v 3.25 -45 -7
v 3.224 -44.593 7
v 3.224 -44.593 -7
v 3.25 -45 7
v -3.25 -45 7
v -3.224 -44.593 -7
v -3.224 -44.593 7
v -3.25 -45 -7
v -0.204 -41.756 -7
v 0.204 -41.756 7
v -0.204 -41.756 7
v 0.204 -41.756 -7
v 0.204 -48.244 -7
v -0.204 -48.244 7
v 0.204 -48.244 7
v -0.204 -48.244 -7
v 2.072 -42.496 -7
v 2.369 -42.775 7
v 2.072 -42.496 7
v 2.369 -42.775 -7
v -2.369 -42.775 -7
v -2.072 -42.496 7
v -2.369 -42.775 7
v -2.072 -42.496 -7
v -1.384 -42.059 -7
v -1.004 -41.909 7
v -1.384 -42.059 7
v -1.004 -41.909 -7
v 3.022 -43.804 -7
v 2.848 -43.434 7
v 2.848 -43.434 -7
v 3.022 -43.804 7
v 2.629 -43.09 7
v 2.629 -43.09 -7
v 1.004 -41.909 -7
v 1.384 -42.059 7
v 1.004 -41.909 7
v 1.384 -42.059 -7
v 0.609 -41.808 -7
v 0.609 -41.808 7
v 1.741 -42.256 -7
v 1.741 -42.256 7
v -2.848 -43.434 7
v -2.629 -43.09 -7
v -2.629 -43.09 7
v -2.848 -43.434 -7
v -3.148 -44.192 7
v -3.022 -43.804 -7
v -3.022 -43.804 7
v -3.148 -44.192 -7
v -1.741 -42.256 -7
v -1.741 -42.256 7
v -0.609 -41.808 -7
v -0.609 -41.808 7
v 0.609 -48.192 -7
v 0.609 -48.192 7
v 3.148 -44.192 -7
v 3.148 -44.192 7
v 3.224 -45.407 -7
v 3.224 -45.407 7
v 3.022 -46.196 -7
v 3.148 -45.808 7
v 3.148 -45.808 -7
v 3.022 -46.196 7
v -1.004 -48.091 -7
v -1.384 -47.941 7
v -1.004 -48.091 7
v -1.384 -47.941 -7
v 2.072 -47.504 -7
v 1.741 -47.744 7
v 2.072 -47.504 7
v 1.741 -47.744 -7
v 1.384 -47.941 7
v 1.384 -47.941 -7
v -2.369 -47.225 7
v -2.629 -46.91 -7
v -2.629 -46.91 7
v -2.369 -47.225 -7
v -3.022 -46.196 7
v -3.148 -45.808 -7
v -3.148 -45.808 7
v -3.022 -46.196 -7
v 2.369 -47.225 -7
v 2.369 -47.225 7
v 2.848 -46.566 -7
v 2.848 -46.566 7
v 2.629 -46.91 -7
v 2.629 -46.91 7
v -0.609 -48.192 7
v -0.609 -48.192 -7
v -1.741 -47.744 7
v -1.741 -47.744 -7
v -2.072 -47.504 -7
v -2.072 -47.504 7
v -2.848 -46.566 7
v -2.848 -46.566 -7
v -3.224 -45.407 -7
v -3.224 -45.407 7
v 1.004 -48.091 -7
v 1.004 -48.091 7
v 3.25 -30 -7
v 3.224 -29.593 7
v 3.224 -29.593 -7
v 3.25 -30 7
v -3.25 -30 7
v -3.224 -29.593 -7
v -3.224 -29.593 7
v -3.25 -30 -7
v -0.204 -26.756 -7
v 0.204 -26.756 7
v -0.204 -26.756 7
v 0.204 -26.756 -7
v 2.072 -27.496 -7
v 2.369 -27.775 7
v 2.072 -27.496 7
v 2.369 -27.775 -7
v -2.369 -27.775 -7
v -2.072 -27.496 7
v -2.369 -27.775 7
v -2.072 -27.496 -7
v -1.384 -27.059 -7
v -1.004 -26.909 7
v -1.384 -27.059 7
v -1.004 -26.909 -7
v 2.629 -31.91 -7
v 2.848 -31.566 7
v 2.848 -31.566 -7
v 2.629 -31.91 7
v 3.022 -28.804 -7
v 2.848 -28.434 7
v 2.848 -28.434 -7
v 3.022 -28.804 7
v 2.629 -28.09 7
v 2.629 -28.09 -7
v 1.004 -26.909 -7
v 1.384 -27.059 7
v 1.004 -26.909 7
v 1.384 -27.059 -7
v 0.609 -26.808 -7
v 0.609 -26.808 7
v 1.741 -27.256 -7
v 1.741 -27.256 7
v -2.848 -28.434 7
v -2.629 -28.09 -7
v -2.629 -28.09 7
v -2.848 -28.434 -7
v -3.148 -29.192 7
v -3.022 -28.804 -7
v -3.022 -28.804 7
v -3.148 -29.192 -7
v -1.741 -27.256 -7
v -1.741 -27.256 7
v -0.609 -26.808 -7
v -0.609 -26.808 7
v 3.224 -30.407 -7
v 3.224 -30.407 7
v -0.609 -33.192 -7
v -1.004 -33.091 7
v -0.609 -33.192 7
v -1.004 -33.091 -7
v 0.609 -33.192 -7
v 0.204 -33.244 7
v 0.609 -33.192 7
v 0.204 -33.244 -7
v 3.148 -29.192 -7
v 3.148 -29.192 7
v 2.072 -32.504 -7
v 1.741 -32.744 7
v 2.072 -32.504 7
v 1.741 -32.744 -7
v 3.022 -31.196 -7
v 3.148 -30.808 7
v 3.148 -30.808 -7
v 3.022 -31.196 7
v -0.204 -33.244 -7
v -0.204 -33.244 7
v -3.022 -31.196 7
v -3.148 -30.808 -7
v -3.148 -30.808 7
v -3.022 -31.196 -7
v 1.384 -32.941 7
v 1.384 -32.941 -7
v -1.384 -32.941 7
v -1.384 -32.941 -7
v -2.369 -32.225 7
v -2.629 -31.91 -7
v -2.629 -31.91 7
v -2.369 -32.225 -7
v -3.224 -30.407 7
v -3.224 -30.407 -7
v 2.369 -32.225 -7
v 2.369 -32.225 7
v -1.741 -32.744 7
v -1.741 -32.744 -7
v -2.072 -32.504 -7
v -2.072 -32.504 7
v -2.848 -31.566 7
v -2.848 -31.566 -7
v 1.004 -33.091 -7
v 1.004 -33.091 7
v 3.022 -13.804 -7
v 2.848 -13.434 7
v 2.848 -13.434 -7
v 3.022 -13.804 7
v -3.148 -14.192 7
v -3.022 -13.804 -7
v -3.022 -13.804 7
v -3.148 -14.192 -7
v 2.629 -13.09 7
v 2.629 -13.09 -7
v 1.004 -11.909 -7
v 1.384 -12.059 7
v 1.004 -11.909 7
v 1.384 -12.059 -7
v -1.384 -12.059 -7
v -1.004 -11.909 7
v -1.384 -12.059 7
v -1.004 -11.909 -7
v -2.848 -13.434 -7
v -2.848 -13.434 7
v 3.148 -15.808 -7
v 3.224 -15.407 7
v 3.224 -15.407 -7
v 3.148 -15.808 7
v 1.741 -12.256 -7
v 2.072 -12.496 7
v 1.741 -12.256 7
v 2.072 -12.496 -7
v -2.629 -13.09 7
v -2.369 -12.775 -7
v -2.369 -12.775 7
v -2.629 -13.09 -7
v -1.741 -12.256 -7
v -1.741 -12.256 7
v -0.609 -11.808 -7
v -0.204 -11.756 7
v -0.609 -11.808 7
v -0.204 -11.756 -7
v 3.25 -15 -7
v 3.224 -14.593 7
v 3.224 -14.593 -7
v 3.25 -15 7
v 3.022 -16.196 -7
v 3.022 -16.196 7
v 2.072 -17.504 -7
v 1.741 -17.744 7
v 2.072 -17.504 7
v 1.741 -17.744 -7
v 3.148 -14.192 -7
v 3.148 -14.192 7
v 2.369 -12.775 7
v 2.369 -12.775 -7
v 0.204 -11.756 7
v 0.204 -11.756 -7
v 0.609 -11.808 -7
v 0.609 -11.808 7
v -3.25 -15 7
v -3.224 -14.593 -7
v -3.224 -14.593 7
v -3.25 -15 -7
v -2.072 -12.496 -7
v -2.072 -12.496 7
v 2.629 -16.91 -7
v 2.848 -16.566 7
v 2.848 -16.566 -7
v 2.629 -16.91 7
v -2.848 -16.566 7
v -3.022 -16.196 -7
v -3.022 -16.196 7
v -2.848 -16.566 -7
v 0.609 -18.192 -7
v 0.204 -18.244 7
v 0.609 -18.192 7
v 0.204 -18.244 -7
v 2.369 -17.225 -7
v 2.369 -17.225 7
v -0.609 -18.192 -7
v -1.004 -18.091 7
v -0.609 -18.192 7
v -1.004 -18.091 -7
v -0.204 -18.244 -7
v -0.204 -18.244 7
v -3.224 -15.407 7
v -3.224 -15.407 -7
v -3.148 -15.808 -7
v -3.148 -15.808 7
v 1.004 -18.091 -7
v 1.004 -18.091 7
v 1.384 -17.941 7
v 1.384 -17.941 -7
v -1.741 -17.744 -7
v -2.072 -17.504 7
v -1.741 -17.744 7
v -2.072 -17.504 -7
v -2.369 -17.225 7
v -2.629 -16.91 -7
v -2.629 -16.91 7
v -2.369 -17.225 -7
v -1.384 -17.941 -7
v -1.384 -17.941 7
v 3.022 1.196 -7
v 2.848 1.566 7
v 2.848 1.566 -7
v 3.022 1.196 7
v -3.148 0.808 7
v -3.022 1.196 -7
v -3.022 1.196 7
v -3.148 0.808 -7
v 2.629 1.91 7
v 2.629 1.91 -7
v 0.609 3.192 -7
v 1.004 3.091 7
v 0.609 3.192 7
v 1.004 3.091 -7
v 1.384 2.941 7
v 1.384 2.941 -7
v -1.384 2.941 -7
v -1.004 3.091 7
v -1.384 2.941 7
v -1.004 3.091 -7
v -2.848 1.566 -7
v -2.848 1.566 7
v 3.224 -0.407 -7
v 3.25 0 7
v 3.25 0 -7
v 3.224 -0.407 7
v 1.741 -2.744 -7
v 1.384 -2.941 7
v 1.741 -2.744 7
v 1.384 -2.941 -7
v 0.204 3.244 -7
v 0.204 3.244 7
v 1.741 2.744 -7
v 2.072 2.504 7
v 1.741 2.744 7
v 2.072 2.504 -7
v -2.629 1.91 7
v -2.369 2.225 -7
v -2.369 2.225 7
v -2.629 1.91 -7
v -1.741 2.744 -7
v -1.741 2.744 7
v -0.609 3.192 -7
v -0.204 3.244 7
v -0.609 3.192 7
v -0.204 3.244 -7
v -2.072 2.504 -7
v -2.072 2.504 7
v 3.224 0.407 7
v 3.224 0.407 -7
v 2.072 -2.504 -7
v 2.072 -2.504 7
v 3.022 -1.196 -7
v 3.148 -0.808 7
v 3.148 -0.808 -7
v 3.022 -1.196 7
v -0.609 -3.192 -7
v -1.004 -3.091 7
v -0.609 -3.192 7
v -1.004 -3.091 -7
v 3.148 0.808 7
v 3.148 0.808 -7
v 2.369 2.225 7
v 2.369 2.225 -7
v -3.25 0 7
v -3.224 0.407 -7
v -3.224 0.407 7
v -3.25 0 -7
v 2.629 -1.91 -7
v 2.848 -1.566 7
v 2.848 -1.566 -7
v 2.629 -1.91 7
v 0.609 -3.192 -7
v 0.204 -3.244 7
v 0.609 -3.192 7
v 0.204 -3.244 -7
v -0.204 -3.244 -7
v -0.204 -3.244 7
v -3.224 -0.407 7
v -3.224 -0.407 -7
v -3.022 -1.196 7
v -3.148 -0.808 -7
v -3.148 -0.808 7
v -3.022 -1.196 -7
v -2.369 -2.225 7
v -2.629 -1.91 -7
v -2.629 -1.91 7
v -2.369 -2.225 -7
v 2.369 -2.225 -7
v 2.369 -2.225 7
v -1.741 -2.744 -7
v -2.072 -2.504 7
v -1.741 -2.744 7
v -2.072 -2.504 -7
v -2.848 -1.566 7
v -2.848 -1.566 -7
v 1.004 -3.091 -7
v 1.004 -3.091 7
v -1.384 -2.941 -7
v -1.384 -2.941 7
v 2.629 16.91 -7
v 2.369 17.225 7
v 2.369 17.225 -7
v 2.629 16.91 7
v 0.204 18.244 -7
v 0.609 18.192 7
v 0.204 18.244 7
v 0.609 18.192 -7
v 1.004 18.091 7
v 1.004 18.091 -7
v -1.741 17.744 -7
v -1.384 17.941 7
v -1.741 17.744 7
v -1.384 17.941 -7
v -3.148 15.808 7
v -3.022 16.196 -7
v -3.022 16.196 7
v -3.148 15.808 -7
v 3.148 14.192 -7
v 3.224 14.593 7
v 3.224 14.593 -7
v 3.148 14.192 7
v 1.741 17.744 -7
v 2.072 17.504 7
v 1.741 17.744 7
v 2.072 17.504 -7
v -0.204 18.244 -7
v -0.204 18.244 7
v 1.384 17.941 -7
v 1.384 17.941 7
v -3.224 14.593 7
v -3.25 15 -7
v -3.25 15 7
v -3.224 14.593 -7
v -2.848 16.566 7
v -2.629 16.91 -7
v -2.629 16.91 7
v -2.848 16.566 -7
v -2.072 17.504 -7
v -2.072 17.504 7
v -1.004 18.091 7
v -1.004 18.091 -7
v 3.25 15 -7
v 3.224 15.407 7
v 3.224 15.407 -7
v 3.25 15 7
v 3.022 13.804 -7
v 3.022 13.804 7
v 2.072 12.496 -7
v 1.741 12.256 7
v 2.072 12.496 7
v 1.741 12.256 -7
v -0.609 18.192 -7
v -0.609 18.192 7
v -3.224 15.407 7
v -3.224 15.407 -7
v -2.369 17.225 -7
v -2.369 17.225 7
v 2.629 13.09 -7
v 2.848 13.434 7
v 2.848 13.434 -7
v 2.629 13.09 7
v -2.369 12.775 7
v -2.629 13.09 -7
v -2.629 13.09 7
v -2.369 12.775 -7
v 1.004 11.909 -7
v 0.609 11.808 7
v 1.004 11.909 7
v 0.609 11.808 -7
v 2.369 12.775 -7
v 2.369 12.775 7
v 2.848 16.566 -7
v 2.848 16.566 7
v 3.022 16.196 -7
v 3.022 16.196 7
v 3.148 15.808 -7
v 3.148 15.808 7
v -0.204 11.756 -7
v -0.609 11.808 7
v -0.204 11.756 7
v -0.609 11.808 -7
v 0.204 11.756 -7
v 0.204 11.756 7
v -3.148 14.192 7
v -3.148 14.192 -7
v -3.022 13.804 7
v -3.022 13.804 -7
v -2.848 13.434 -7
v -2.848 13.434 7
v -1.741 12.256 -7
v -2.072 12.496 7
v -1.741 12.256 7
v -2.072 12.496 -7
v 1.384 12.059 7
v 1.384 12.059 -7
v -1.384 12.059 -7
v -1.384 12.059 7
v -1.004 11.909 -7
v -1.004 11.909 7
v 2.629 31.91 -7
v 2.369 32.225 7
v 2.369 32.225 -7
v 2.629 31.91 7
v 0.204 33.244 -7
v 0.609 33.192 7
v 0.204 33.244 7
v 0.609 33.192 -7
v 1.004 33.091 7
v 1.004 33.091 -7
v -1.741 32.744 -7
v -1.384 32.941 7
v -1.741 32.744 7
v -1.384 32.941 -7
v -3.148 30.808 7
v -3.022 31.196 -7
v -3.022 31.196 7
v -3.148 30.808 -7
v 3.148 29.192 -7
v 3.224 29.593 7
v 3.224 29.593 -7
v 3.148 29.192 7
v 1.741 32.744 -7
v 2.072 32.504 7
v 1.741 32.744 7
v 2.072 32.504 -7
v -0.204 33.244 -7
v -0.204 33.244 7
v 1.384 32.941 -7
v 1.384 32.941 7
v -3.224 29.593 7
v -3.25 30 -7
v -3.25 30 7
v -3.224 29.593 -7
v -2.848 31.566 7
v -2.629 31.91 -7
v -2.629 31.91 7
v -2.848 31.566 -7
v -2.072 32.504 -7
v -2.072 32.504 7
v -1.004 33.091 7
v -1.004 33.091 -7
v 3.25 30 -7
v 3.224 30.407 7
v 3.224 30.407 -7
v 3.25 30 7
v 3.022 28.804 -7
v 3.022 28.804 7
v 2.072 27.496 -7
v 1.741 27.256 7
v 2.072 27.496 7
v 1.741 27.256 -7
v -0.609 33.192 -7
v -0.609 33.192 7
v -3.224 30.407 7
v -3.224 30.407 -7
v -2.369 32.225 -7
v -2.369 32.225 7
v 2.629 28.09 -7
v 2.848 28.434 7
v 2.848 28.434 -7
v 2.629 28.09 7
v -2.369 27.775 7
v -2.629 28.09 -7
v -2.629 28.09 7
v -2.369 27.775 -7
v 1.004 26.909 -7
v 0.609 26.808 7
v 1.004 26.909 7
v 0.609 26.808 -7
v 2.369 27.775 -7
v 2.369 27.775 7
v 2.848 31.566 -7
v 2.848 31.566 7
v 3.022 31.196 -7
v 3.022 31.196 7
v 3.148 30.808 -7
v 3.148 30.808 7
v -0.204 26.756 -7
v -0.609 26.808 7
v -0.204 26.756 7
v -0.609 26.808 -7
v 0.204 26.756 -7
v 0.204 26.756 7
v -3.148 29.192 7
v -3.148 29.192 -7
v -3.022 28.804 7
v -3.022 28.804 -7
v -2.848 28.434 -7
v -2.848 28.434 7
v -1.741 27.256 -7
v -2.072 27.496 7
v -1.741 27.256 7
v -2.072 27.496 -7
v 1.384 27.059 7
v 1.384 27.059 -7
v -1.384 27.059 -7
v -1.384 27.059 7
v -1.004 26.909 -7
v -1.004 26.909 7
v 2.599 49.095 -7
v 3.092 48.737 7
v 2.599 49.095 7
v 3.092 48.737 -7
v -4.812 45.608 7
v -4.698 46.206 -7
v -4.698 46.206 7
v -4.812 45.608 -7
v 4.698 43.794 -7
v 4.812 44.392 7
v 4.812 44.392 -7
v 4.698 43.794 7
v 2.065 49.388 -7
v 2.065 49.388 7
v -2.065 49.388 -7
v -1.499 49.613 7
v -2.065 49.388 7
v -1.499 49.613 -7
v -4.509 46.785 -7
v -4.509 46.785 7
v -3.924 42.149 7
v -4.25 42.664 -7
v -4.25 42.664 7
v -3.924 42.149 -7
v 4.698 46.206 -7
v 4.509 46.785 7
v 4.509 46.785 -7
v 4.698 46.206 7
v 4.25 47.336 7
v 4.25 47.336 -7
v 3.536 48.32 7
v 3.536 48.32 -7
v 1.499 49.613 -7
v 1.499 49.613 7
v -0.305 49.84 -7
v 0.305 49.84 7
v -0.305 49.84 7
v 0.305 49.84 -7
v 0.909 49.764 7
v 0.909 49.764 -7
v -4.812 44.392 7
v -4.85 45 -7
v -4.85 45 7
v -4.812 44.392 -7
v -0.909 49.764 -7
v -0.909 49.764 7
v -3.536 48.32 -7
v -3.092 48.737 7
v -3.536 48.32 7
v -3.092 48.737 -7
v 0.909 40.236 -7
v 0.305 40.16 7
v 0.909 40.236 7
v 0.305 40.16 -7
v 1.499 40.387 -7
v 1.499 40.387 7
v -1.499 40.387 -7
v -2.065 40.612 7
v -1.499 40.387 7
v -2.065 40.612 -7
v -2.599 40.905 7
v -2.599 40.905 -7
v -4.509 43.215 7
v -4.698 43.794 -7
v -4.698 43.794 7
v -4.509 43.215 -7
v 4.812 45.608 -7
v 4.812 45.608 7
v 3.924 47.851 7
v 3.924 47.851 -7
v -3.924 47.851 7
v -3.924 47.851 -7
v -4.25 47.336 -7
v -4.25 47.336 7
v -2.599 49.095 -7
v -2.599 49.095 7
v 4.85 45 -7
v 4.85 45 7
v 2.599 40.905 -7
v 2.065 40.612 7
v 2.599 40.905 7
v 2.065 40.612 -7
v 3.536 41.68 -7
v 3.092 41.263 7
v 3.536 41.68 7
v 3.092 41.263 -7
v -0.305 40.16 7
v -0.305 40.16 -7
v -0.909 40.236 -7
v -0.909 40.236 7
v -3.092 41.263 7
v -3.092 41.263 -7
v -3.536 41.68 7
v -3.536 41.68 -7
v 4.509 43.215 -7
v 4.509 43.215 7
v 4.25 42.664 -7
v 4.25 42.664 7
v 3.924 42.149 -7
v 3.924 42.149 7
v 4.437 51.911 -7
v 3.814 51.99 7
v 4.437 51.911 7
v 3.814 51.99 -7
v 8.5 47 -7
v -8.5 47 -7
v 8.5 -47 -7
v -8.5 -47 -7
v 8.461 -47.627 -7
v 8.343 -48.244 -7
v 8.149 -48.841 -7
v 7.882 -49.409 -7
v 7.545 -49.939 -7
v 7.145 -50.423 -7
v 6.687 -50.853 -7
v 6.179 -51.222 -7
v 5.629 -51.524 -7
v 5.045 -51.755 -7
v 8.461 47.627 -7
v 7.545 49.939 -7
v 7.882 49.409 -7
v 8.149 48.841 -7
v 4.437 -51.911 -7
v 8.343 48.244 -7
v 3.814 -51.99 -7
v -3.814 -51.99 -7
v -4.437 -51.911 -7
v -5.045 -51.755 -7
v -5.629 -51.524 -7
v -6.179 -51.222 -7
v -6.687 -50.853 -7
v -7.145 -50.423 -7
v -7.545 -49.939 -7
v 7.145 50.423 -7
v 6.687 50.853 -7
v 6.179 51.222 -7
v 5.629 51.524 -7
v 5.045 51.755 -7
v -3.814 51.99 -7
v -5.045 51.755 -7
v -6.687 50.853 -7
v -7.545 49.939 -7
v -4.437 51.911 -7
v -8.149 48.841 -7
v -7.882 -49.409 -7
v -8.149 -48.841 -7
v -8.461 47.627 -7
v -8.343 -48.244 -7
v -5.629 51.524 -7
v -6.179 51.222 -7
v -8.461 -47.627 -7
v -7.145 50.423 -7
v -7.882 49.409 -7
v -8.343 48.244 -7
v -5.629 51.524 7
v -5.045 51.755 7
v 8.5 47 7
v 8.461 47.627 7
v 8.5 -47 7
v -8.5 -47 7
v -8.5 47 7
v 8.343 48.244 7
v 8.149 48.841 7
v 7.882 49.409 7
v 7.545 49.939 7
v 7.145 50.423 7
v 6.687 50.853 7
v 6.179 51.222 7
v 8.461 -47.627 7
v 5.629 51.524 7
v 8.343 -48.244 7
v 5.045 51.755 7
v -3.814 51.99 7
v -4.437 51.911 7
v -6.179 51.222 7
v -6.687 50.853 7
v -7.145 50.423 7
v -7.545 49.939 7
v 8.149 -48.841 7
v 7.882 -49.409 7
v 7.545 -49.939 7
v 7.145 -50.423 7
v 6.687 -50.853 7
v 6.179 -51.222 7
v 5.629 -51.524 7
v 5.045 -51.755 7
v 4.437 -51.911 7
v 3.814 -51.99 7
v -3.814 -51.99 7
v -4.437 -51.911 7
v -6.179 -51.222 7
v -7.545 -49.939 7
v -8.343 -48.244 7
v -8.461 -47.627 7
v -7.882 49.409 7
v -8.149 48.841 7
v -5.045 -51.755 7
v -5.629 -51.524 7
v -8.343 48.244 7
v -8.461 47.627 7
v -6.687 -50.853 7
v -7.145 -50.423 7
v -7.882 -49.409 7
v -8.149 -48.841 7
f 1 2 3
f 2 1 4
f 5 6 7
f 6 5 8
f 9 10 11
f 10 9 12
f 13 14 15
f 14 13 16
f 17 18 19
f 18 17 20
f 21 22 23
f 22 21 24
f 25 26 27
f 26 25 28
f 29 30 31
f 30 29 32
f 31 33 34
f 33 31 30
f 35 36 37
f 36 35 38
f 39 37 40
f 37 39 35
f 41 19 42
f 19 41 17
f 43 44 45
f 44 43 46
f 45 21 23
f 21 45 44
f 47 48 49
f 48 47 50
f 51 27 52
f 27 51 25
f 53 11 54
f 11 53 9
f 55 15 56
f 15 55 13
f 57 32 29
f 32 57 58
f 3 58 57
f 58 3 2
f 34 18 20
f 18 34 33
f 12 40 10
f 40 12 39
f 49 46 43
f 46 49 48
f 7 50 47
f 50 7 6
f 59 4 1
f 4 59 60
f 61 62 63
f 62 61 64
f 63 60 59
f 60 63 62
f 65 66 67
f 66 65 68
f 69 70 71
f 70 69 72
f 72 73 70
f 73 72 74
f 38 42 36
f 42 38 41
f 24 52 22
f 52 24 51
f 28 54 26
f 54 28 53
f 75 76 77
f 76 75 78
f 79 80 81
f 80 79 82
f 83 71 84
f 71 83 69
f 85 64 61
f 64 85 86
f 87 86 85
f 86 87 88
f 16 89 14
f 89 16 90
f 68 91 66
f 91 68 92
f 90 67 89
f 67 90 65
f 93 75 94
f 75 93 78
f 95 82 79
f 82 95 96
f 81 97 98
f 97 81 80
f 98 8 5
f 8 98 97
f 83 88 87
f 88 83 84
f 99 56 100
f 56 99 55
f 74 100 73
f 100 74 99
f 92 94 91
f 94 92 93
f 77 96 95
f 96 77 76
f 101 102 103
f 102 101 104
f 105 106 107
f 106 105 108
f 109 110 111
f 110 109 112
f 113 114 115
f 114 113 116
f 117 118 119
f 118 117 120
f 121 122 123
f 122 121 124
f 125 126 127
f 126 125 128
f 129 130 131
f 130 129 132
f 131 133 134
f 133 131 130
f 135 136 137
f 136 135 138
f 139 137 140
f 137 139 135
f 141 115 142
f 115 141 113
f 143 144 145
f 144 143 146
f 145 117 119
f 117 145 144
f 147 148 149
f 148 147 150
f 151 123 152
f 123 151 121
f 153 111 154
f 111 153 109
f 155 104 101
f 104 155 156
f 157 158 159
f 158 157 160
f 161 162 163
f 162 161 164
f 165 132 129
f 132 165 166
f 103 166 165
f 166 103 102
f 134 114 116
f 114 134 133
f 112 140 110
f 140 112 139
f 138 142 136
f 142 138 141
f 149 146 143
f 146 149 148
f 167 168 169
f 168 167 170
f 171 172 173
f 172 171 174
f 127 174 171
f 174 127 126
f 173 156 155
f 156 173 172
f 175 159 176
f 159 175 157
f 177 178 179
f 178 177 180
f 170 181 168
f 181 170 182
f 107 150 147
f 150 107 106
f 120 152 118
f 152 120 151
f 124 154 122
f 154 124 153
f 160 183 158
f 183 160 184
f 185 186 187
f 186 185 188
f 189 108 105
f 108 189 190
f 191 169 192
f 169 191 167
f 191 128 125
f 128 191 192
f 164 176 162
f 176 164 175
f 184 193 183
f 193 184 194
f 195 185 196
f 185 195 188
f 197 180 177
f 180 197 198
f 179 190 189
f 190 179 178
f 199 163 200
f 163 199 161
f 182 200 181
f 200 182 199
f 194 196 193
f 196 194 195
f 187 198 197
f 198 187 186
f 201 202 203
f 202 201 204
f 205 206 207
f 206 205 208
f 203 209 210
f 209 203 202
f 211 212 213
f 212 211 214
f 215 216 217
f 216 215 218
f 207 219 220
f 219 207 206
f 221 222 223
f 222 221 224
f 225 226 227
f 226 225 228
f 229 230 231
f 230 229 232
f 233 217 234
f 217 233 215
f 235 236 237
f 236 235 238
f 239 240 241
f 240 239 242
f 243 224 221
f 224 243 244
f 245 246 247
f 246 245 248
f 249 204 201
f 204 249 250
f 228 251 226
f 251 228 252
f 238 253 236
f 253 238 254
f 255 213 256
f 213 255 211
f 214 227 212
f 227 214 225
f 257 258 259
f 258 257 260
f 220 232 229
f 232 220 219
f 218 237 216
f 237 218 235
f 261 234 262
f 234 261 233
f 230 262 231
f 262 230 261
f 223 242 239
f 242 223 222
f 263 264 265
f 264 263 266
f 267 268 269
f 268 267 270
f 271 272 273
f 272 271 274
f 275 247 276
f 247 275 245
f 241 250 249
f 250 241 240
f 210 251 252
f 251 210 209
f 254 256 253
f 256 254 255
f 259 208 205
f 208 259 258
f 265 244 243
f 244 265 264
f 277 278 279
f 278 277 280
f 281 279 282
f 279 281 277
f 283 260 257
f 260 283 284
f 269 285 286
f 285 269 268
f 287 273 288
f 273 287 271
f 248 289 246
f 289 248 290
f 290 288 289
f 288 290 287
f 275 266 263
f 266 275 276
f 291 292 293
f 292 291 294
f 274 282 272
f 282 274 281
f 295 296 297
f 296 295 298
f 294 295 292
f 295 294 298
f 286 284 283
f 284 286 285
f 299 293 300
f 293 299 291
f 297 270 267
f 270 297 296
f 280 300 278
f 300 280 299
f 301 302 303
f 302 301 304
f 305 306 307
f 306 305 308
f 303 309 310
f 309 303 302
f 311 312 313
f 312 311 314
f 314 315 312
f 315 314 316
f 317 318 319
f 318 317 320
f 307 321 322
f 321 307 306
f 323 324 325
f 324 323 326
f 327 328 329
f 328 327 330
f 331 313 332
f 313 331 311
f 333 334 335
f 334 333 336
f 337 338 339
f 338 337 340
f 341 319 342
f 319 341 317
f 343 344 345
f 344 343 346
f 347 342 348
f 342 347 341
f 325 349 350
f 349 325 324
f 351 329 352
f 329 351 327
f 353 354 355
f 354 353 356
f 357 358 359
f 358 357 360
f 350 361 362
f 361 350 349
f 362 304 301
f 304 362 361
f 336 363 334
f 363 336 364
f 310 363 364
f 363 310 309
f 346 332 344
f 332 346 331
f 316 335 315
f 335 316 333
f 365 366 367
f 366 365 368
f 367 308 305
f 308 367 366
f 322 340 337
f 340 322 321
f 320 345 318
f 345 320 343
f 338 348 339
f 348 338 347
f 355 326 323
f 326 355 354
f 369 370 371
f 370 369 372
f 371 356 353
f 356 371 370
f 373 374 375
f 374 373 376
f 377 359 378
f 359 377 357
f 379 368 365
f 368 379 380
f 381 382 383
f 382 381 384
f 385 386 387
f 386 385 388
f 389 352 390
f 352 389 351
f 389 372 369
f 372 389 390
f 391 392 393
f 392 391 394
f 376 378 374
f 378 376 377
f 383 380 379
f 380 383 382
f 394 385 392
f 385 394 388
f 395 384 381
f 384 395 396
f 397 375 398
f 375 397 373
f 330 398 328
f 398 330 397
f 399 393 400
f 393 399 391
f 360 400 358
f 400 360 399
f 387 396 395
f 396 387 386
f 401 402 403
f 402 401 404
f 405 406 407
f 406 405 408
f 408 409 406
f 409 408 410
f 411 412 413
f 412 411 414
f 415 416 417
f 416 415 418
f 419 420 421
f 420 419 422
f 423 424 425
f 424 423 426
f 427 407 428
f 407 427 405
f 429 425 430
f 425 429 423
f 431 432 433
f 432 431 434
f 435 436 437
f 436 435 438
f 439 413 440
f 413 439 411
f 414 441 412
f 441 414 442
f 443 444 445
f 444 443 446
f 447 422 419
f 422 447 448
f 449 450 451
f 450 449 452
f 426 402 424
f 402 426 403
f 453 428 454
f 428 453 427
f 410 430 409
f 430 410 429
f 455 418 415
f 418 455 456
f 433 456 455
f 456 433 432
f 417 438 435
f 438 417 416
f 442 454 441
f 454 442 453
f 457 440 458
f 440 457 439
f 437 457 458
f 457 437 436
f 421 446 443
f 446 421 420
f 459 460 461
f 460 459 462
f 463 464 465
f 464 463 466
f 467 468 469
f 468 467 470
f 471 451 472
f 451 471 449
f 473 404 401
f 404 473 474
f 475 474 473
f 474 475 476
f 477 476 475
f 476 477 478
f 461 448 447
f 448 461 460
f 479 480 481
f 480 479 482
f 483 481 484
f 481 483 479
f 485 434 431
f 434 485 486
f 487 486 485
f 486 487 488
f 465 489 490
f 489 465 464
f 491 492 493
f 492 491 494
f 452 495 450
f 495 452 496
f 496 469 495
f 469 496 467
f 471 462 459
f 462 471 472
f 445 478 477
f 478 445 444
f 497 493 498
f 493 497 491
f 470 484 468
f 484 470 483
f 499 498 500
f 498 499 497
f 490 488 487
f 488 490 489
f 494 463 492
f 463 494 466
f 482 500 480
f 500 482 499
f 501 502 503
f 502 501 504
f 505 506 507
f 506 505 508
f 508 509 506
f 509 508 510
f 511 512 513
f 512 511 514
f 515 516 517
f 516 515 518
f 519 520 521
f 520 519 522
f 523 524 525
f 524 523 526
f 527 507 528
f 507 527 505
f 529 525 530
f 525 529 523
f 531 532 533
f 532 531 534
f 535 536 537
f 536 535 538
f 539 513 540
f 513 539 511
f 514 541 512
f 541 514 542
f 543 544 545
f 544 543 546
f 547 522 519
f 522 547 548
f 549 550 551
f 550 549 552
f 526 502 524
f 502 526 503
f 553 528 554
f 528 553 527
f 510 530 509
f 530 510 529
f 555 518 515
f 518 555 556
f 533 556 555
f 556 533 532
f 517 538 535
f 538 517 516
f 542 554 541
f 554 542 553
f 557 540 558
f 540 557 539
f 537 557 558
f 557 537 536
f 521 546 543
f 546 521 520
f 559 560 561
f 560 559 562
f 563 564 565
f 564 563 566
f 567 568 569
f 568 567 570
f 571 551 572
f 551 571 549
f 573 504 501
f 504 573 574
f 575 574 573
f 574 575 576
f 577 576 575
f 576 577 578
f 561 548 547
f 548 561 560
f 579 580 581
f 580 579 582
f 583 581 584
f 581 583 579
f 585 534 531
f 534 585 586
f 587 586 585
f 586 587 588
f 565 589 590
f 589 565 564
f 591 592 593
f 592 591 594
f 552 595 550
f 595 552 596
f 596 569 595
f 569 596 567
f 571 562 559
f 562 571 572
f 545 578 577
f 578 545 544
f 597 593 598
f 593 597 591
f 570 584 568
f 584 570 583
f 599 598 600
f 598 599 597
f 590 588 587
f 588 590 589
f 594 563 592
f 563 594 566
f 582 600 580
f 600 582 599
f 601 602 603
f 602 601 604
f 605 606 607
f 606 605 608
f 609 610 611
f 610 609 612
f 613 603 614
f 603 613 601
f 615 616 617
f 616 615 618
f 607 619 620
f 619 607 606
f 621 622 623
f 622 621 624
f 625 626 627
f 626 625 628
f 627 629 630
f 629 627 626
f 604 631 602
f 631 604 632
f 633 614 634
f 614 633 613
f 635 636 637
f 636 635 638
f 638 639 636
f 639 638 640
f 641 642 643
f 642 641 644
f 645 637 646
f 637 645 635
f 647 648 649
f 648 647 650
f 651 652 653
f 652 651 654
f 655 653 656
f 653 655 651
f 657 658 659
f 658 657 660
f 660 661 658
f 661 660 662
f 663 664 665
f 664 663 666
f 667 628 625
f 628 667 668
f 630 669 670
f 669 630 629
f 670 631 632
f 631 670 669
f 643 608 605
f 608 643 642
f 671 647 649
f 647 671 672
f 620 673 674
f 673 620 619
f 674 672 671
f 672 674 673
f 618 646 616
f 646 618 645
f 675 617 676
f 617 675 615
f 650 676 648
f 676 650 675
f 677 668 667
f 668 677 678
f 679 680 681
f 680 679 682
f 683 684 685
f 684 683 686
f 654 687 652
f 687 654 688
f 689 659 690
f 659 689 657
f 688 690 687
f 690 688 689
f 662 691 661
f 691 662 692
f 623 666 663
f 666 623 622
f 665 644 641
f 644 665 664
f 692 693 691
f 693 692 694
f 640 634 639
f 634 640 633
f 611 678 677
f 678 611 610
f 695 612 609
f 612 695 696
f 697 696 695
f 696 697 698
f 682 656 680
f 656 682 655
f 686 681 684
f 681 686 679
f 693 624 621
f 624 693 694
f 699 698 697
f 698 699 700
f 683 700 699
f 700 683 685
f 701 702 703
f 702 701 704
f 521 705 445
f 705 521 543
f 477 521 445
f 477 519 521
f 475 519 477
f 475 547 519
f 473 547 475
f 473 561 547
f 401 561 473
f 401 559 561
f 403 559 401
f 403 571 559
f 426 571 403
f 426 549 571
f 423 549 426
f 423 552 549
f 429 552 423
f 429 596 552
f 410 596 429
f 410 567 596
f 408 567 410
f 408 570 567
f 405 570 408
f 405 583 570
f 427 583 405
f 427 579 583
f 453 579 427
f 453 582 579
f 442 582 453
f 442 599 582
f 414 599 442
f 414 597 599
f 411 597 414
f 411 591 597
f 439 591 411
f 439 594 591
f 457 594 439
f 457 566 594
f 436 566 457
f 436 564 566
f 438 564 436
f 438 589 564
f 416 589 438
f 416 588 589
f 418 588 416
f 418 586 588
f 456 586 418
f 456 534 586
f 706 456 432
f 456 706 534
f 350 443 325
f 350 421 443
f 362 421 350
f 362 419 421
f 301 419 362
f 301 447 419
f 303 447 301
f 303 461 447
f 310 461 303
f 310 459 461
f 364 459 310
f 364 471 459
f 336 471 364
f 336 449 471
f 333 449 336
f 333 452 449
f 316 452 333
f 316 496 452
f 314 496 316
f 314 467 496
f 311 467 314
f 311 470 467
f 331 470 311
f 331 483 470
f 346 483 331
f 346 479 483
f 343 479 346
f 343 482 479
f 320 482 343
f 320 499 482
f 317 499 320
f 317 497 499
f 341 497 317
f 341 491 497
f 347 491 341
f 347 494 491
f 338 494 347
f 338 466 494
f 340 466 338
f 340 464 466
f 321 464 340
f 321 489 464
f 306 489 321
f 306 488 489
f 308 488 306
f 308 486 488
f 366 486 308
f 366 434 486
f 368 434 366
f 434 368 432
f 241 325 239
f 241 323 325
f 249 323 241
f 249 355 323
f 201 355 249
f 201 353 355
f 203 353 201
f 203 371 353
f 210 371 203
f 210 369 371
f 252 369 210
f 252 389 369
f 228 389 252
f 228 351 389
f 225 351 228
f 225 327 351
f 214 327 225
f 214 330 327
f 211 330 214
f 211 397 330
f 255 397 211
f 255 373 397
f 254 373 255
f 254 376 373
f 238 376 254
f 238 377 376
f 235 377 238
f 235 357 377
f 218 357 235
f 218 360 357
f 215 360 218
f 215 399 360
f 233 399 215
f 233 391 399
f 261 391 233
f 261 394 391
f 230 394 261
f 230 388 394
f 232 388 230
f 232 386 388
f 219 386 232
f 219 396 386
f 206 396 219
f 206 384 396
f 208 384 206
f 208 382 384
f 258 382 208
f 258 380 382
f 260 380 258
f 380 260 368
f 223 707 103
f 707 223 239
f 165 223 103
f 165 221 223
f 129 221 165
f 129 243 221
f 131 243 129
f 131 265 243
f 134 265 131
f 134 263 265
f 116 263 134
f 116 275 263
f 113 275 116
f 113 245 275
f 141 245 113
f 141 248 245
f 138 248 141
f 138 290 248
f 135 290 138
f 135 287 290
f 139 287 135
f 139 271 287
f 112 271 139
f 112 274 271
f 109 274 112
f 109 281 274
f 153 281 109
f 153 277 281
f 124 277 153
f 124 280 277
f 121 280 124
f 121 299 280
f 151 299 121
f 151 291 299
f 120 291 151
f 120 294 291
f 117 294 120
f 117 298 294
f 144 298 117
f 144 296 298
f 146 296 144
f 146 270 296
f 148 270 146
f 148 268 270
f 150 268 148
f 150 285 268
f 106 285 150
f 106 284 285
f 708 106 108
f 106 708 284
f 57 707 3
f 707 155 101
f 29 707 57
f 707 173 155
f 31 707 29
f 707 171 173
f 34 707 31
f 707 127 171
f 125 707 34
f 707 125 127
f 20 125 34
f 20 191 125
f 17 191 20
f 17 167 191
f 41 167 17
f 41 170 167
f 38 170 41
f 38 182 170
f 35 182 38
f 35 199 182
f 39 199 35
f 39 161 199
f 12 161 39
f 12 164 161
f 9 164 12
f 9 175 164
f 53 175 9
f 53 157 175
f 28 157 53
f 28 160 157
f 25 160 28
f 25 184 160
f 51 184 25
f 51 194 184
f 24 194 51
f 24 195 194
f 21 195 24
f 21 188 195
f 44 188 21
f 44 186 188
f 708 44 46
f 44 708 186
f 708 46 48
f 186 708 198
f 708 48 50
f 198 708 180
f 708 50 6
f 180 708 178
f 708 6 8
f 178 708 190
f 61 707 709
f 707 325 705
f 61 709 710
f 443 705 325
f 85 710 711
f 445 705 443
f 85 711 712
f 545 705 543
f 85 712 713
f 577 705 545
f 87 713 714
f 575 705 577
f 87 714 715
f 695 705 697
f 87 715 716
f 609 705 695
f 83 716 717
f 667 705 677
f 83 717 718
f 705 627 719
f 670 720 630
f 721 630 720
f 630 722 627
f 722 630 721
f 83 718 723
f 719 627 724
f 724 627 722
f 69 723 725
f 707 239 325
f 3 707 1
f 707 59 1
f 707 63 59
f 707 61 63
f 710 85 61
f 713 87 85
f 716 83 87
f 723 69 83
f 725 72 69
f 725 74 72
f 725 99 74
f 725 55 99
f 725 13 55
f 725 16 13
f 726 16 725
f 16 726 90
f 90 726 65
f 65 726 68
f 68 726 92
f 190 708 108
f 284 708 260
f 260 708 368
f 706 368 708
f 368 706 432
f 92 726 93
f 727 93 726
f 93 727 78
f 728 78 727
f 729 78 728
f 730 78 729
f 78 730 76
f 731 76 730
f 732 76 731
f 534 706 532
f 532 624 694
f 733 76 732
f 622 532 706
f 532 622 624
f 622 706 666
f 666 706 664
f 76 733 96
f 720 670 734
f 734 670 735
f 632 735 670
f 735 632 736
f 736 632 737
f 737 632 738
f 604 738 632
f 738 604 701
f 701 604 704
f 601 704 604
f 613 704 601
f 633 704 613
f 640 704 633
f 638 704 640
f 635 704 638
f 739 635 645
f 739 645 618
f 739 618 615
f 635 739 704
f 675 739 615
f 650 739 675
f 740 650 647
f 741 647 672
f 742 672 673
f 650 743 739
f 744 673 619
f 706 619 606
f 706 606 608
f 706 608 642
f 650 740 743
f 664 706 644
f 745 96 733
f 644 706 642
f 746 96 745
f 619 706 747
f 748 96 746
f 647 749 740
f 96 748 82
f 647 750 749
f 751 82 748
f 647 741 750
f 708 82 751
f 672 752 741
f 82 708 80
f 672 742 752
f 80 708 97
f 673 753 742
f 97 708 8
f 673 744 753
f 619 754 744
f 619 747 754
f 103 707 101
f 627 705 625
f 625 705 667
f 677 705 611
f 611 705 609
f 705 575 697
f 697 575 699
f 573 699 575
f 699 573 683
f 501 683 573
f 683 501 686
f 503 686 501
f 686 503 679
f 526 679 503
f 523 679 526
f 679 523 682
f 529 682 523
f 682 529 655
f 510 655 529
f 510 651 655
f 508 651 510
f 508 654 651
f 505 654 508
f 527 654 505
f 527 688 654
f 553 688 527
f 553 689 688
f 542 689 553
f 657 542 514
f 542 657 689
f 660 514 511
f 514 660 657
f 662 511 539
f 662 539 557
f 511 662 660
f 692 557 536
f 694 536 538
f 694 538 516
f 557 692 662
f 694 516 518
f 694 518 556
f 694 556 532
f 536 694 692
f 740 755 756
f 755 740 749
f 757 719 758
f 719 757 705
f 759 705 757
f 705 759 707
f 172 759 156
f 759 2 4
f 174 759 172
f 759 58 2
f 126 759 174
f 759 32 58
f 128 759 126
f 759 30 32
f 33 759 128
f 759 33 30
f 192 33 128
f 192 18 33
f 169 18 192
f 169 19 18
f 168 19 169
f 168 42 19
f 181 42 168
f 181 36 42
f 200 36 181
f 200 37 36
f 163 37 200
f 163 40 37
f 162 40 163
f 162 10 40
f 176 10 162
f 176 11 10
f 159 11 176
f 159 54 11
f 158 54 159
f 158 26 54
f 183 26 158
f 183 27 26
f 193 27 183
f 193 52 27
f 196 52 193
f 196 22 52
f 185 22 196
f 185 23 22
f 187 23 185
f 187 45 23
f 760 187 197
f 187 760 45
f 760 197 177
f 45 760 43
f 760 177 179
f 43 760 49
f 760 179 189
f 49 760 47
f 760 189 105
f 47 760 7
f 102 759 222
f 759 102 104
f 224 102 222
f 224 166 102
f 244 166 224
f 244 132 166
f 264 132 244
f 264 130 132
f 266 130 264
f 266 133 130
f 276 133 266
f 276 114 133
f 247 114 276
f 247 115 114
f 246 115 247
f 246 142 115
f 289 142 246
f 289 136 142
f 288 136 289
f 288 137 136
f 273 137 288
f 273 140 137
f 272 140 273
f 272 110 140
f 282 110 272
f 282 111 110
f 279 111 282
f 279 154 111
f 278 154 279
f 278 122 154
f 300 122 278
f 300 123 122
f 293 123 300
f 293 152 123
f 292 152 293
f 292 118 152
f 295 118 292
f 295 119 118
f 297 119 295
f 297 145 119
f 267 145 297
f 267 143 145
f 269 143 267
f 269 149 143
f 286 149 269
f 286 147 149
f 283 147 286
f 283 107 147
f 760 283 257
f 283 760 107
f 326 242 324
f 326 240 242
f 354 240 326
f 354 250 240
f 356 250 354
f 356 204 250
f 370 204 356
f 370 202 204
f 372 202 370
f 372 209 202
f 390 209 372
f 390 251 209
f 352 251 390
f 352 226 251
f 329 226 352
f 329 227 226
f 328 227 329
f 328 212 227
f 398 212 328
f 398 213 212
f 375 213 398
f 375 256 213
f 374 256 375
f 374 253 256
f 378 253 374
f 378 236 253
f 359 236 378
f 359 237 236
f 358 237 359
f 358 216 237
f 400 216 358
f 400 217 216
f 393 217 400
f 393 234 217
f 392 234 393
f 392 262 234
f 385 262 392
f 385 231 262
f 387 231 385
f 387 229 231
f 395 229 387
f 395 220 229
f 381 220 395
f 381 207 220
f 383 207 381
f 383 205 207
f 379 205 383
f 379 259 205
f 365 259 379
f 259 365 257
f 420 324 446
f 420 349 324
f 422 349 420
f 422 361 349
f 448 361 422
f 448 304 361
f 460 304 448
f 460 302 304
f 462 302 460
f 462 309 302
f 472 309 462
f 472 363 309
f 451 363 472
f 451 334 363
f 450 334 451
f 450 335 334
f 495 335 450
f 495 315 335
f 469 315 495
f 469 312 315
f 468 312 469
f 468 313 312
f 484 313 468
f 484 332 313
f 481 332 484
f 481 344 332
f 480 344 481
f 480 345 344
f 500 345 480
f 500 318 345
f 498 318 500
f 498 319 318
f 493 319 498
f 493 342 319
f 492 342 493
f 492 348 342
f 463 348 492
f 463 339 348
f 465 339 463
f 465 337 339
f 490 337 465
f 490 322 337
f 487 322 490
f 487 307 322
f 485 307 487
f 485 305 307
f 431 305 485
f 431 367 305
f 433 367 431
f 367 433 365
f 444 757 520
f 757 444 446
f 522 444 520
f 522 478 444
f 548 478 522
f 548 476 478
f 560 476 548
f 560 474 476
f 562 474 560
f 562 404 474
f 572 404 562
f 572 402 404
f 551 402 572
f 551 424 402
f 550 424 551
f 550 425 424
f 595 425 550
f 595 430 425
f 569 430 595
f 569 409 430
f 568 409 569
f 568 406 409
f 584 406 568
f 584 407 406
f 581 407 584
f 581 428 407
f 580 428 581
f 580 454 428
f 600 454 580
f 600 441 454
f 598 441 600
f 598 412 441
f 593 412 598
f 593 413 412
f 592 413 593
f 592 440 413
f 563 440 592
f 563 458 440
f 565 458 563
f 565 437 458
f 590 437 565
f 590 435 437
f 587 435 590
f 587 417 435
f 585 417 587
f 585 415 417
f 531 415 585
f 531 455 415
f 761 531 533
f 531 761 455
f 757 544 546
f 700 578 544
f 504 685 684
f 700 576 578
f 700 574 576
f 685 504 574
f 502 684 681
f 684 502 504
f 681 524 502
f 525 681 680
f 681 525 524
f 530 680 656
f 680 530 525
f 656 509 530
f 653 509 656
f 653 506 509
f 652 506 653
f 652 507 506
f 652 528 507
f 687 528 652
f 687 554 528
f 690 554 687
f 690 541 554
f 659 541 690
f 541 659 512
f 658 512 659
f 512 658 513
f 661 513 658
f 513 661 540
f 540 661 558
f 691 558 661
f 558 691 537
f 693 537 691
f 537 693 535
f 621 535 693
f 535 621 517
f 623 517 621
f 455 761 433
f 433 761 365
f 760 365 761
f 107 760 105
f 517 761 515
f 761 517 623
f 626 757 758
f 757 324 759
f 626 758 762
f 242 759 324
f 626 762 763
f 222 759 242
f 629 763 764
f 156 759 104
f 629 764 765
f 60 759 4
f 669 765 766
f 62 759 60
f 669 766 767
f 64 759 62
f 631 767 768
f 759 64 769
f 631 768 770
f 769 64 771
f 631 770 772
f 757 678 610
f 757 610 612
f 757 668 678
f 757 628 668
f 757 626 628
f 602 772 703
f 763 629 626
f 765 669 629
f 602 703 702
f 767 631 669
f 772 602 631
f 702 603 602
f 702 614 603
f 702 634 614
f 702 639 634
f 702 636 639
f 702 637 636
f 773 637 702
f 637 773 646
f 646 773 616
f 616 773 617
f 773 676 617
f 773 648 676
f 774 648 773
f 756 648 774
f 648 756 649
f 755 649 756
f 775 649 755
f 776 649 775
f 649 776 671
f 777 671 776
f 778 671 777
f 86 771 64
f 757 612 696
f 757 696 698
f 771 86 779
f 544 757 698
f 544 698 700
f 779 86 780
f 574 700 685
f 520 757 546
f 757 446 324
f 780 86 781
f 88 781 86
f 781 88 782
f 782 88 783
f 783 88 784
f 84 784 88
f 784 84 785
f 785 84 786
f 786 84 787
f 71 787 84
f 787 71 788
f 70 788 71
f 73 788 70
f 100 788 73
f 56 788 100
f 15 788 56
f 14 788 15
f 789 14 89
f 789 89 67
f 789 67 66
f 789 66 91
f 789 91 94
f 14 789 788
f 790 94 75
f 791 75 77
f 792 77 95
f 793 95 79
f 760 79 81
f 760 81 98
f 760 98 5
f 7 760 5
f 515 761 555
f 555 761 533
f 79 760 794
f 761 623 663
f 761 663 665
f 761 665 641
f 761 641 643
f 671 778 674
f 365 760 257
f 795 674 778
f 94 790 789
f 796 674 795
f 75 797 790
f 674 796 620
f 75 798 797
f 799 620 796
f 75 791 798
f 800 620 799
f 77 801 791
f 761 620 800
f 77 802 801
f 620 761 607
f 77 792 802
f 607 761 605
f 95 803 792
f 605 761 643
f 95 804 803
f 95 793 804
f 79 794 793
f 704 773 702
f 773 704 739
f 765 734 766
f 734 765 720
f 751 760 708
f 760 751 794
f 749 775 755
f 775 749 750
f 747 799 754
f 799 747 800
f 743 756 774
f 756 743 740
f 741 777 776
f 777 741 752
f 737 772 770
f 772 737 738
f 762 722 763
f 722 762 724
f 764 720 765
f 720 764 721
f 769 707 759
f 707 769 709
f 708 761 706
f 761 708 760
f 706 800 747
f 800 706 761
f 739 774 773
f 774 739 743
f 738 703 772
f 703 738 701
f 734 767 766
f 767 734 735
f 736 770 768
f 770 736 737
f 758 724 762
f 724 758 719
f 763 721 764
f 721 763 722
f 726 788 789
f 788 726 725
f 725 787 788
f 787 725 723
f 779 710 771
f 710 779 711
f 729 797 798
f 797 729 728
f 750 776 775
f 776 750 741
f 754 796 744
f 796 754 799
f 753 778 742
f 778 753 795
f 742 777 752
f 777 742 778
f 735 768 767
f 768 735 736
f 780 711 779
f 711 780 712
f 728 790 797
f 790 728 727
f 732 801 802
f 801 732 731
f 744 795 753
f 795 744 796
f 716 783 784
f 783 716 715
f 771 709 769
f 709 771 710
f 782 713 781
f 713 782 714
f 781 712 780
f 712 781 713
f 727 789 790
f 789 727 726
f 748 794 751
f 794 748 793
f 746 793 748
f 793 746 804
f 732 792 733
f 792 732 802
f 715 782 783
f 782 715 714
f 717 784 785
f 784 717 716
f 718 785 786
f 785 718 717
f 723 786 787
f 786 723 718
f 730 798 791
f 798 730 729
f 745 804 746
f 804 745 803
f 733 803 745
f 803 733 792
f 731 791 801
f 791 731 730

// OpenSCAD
$fn = 50;


difference() {
	union() {
		translate(v = [0, 0, -7.0000000000]) {
			hull() {
				translate(v = [-3.5000000000, 47.0000000000, 0]) {
					cylinder(h = 14, r = 5);
				}
				translate(v = [3.5000000000, 47.0000000000, 0]) {
					cylinder(h = 14, r = 5);
				}
				translate(v = [-3.5000000000, -47.0000000000, 0]) {
					cylinder(h = 14, r = 5);
				}
				translate(v = [3.5000000000, -47.0000000000, 0]) {
					cylinder(h = 14, r = 5);
				}
			}
		}
	}
	union() {
		translate(v = [0.0000000000, -45.0000000000, -50.0000000000]) {
			cylinder(h = 100, r = 3.2500000000);
		}
		translate(v = [0.0000000000, -30.0000000000, -50.0000000000]) {
			cylinder(h = 100, r = 3.2500000000);
		}
		translate(v = [0.0000000000, -15.0000000000, -50.0000000000]) {
			cylinder(h = 100, r = 3.2500000000);
		}
		translate(v = [0.0000000000, 0.0000000000, -50.0000000000]) {
			cylinder(h = 100, r = 3.2500000000);
		}
		translate(v = [0.0000000000, 15.0000000000, -50.0000000000]) {
			cylinder(h = 100, r = 3.2500000000);
		}
		translate(v = [0.0000000000, 30.0000000000, -50.0000000000]) {
			cylinder(h = 100, r = 3.2500000000);
		}
		translate(v = [0, 45, -50.0000000000]) {
			cylinder(h = 100, r = 4.8500000000);
		}
	}
}
